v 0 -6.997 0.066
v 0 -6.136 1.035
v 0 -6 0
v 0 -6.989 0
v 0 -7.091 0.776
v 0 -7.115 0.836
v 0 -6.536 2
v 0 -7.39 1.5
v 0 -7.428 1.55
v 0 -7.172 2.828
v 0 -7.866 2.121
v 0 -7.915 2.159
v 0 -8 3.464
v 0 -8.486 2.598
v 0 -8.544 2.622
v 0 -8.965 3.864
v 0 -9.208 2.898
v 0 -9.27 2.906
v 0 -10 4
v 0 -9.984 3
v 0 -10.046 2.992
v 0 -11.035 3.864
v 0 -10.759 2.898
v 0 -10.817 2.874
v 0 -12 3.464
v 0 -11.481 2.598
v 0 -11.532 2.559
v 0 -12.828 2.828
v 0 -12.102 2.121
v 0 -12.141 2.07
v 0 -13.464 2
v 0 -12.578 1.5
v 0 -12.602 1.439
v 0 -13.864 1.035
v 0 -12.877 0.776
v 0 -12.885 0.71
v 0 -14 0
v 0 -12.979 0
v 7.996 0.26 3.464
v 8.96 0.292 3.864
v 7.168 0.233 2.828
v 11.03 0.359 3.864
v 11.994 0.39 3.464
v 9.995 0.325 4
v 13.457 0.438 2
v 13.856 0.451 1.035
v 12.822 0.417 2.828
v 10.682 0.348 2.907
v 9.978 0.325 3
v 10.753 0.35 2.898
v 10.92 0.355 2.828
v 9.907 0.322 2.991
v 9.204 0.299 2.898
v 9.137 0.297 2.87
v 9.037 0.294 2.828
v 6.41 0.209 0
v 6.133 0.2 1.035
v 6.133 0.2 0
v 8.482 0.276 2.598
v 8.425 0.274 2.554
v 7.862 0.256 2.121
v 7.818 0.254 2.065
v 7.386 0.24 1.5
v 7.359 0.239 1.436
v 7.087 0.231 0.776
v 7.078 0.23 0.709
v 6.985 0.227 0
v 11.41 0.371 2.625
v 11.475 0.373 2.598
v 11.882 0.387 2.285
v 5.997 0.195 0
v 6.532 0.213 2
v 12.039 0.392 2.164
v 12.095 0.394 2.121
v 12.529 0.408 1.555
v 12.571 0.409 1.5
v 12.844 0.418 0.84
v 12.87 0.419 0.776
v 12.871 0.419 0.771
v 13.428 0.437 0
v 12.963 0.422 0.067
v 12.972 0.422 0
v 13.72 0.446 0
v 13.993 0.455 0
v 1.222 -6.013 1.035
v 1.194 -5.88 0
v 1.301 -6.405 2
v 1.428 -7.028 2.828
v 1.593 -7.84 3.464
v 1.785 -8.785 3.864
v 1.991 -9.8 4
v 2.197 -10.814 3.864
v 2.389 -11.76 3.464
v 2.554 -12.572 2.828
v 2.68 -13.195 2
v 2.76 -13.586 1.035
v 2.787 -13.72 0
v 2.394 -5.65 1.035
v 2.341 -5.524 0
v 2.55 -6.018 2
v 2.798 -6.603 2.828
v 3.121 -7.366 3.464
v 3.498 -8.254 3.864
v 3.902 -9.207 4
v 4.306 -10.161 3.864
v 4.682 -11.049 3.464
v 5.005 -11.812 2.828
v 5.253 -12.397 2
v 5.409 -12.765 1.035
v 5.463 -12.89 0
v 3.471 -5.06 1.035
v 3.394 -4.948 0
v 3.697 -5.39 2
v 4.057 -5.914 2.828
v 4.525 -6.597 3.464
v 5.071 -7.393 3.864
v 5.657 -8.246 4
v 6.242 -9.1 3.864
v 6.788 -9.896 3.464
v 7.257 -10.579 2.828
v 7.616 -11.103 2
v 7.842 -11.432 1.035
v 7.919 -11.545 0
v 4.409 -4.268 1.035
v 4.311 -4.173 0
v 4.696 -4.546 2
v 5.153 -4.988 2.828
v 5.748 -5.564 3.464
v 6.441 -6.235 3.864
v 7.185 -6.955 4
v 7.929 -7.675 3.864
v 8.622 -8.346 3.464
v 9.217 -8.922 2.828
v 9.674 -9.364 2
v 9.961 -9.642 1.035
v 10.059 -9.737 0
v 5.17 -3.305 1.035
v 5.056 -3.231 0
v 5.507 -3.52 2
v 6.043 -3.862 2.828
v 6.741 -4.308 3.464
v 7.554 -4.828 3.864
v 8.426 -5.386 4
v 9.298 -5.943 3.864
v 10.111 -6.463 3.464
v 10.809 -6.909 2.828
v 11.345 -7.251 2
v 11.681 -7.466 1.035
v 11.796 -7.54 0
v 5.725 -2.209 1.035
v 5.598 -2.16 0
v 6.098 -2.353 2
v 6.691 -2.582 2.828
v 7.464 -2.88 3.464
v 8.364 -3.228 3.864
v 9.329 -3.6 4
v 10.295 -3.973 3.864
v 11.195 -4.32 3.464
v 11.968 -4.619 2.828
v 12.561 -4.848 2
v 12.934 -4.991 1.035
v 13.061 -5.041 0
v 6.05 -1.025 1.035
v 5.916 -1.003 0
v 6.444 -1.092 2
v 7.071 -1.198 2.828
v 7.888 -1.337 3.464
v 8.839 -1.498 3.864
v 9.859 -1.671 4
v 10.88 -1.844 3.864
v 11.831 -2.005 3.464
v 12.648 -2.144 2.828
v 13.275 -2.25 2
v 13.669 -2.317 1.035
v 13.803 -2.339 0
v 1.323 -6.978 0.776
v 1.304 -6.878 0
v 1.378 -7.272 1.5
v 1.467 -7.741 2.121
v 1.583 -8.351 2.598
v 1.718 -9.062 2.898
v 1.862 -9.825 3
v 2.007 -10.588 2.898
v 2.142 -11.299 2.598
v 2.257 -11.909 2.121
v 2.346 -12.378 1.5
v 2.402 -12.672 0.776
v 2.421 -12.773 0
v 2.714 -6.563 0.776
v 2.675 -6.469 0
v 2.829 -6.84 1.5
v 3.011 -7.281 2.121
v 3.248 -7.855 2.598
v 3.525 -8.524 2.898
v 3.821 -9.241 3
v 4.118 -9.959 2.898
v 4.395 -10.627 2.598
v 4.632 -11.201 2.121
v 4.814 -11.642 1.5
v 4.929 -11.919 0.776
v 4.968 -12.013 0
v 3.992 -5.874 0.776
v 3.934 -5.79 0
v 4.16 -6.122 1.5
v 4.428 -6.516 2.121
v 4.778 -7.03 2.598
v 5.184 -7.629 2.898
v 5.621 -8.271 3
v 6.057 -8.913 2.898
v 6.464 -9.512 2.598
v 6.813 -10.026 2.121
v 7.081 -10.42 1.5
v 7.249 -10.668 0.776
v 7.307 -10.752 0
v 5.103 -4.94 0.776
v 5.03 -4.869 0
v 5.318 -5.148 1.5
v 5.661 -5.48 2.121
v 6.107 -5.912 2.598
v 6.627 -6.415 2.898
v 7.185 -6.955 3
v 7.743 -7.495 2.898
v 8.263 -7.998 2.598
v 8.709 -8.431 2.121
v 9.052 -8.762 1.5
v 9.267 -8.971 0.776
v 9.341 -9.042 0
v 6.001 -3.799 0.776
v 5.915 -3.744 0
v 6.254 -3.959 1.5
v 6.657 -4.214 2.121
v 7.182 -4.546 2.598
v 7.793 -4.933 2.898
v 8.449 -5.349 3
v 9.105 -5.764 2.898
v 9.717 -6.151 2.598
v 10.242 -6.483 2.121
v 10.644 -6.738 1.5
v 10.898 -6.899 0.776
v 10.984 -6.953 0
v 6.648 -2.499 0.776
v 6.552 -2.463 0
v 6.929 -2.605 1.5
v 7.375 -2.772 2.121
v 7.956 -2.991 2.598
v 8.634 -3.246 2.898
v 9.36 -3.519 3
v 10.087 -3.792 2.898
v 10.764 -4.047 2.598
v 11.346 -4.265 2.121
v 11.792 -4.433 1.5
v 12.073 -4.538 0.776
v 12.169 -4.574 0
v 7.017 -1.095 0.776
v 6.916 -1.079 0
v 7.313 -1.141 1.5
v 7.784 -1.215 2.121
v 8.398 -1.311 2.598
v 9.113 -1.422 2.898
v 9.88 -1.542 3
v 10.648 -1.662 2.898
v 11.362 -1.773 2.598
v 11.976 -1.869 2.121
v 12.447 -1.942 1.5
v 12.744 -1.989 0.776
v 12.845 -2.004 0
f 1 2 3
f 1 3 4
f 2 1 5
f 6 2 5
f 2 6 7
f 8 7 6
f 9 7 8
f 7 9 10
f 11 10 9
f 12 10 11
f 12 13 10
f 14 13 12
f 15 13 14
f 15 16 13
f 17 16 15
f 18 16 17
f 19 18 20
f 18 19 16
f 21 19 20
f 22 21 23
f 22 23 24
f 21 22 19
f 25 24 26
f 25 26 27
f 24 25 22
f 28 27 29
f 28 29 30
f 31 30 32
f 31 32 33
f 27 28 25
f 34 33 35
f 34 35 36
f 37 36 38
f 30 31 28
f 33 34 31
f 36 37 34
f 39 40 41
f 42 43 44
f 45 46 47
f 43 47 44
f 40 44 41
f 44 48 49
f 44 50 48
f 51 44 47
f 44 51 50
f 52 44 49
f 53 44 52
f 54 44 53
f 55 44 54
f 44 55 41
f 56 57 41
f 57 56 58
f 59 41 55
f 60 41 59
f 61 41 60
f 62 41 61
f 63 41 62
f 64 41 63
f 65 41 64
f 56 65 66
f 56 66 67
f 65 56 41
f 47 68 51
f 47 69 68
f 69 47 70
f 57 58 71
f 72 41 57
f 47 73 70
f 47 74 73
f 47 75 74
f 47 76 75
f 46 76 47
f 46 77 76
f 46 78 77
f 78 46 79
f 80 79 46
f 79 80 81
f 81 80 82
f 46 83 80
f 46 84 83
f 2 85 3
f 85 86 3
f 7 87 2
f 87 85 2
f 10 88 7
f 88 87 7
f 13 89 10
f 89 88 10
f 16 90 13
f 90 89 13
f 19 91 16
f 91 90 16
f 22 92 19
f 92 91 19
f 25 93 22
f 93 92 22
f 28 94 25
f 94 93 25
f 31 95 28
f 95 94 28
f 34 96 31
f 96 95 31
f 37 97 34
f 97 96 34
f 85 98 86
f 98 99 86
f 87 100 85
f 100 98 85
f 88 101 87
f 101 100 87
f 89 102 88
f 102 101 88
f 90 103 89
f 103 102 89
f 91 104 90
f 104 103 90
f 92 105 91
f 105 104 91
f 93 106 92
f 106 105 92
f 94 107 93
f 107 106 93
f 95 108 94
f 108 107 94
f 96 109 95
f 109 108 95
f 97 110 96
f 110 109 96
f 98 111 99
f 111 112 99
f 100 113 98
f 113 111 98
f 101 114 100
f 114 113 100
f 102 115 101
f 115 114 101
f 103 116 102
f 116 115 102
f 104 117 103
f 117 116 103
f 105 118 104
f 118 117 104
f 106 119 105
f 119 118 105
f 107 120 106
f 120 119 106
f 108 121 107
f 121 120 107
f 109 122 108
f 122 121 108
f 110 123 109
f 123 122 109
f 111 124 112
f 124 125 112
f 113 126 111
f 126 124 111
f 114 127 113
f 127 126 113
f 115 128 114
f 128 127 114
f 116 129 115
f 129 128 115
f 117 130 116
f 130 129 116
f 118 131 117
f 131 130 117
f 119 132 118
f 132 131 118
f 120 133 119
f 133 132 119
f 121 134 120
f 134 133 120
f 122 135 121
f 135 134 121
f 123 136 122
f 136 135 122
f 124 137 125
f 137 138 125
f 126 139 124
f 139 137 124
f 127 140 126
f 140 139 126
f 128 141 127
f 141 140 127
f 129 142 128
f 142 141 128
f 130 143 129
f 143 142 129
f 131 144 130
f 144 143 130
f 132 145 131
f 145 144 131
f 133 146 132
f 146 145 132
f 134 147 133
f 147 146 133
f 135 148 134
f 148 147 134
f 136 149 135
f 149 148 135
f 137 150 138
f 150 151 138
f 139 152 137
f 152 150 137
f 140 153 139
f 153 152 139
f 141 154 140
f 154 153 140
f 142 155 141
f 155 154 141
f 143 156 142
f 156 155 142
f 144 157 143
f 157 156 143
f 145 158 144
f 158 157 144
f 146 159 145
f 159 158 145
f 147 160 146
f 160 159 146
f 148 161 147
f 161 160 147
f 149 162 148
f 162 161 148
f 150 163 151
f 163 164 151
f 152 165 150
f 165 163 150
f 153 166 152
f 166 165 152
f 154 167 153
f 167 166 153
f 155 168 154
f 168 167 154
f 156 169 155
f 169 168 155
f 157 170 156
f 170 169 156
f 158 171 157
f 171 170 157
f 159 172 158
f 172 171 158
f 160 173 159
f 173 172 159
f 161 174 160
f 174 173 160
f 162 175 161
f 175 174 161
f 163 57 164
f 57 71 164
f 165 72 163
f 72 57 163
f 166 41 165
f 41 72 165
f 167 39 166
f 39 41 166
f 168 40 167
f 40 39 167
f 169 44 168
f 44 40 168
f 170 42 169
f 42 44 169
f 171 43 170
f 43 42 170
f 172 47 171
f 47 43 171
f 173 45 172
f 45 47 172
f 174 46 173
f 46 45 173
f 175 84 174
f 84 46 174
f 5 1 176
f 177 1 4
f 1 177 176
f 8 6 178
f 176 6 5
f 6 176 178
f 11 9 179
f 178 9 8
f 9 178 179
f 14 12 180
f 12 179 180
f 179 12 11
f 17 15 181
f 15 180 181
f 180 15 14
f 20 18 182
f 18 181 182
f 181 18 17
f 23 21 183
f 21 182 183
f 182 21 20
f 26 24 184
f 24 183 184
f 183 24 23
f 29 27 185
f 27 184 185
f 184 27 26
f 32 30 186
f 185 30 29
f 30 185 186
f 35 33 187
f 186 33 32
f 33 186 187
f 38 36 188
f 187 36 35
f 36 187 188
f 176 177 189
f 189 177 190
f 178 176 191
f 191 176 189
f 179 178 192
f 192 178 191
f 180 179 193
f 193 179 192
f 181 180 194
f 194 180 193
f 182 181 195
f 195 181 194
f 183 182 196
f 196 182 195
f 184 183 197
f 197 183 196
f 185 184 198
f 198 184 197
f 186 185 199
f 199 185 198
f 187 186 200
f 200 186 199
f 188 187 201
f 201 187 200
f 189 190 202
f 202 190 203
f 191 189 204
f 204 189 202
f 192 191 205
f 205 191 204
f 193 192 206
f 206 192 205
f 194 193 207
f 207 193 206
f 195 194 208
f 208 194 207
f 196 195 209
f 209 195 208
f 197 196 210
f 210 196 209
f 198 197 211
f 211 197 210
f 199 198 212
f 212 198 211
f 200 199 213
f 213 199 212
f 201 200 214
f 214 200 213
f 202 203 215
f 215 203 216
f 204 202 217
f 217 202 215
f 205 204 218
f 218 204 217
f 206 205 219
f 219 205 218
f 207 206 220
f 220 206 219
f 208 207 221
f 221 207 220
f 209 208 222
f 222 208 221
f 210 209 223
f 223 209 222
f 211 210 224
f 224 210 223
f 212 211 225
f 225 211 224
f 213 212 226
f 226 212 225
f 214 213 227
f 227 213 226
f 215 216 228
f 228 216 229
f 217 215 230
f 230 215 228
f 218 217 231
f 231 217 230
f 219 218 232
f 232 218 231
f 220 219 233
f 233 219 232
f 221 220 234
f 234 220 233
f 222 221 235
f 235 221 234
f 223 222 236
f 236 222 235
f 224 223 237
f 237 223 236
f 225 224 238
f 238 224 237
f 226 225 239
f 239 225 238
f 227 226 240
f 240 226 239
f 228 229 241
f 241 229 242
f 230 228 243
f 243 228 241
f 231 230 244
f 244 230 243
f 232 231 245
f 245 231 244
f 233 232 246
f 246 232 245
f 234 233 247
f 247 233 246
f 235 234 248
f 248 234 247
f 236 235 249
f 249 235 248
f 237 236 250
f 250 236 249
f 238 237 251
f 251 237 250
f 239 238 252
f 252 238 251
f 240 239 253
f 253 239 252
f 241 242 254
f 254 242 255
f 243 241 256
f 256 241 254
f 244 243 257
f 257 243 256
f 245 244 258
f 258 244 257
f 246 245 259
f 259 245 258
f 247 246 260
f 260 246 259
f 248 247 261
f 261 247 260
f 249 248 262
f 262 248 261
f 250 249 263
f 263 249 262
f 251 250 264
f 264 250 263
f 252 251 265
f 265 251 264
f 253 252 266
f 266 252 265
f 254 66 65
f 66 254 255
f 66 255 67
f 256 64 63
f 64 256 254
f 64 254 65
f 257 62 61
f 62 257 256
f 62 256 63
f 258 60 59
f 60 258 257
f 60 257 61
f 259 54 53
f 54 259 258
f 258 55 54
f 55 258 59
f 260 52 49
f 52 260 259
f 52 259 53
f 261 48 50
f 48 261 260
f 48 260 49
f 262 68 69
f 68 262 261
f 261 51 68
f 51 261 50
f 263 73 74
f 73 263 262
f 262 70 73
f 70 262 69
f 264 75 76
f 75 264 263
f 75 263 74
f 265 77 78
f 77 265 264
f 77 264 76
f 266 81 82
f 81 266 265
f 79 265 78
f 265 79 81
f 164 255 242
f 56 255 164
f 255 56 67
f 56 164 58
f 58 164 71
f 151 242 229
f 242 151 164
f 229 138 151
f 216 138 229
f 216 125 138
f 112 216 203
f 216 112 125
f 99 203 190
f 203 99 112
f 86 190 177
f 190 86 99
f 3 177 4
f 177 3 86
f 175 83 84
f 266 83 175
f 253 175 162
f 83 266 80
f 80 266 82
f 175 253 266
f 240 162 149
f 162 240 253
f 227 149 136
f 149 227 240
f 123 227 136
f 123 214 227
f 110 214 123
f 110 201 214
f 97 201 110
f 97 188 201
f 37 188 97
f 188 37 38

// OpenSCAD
// file: ../build_environments.scad
// build_environments.scad: modules to build level sections
//

module pool(diameter=10.0, wall_height=2.0, step_width=3.0, connections=[])
{
    difference() {
        union() {
        difference() {
            cylinder(h=0.5,r1=diameter+step_width,r2=diameter+step_width,$fn=48);
            translate([0,0,-0.1])
                cylinder(h=0.7,r1=diameter,r2=diameter,$fn=48);
        }
        difference() {
            cylinder(h=wall_height,r1=diameter+step_width+1.0,r2=diameter+step_width+1.0,$fn=48);
            translate([0,0,-0.1])
                cylinder(h=wall_height+0.2,r1=diameter+step_width,r2=diameter+step_width,$fn=48);
        }
        }
    
        for (c = connections)
        {
            rotate([0,90,0]) {
                angle = atan2(c[1],c[0]);
                rotate([-angle,0,0]) {
                    cylinder(h=diameter+5.0,r1=c[2],r2=c[2],$fn=48);
                }
            }
        }
    }
}

module straight(length=10.0, width=2.0, dy1=0.0, dy2=0.0, dz=0.0)
{
    dims = [0, 0, 0, 0, 0, (dz/length)];
    matrix = [
        [ 1, dims[0], dims[1], 0 ],
        [ dims[2], 1, dims[4], 0 ],
        [ dims[5], dims[3], 1, 0 ],
        [ 0, 0, 0, 1 ]
    ];
    multmatrix(matrix)
    difference() {
        translate([dy1,0,0])
        union() {
            rotate([0,90,0]) {
                difference() {
                    cylinder(h=(length-dy1-dy2),r1=width+1.0,r2=width+1.0,$fn=24);
                    translate([0,0,-0.1])
                        cylinder(h=(length-dy1-dy2+0.2),r1=width,r2=width,$fn=24);
                }
                difference() {
                    cylinder(h=1.0,r1=width+2.0,r2=width+2.0,$fn=24);
                    translate([0,0,-0.1])
                        cylinder(h=1.2,r1=width,r2=width,$fn=24);
                }
                translate([0,0,(length-dy1-dy2)-1.0]) {
                    difference() {
                        cylinder(h=1.0,r1=width+2.0,r2=width+2.0,$fn=24);
                        translate([0,0,-0.1])
                            cylinder(h=1.2,r1=width,r2=width,$fn=24);
                    }
                }
            }
        }
        translate([0,0,-(2*width+4.0)/2])
            cube([3*length,3*length,2*width+4.0],center=true);
    }
}

module curve(p0=[0,0], center=[0,0], dir=1, angle=0.0, width=2.0)
{
    radius = sqrt((p0[0]-center[0])*(p0[0]-center[0]) + (p0[1]-center[1])*(p0[1]-center[1]));
    if (dir == 0) {
        difference() {
            rotate([0,0,-90])
            difference() {
                rotate_extrude(angle = angle, convexity = 10, $fn=32)
                    translate([radius, 0, 0])
                        circle(r = width+1.0,$fn=24);
                rotate([0,0,-1.0])
                    rotate_extrude(angle = angle+2.0, convexity = 10, $fn=32)
                        translate([radius, 0, 0])
                            circle(r = width,$fn=24);
            }
            translate([0,0,-(2*width+4.0)/2])
                cube([5*radius,5*radius,2*width+4.0],center=true);
        }
    }
    else {
        difference() {
            rotate([0,0,90])
            difference() {
                rotate_extrude(angle = -angle, convexity = 10, $fn=32)
                    translate([radius, 0, 0])
                        circle(r = width+1.0,$fn=24);
                rotate([0,0,1.0])
                    rotate_extrude(angle = -angle-2.0, convexity = 10, $fn=32)
                        translate([radius, 0, 0])
                            circle(r = width,$fn=24);
            }
            translate([0,0,-(2*width+4.0)/2])
                cube([5*radius,5*radius,2*width+4.0],center=true);
        }
    }

}

// test pool
//pool(diameter=12.0000, wall_height=3.0000, step_width=3.0000, connections=[[0.0000,-26.0000,2.0000], [23.6074,0.0000,2.0000]]);

// test straight, slope
//straight(length=26.0000, width=2.0000, dy1=11.8322, dy2=6.7082, dz=0.0000);
//straight(length=29.1549, width=12.0000, dy1=0.0000, dy2=0.0000, dz=-15.0000);

// test curve
//curve(p0=[23.6074, 0.0000], center=[23.6074, 5.0000], dir=0, angle=60.1011, width=2.0000);
//curve(p0=[33.6426, 12.4219], center=[37.9771, 9.9295], dir=1, angle=120.4627, width=2.0000);
// main file
use <../build_environments.scad>;
curve(p0=[-45.7042, 59.8989], center=[-46.2123, 49.9118], dir=0, angle=91.8634, width=3.0000);
